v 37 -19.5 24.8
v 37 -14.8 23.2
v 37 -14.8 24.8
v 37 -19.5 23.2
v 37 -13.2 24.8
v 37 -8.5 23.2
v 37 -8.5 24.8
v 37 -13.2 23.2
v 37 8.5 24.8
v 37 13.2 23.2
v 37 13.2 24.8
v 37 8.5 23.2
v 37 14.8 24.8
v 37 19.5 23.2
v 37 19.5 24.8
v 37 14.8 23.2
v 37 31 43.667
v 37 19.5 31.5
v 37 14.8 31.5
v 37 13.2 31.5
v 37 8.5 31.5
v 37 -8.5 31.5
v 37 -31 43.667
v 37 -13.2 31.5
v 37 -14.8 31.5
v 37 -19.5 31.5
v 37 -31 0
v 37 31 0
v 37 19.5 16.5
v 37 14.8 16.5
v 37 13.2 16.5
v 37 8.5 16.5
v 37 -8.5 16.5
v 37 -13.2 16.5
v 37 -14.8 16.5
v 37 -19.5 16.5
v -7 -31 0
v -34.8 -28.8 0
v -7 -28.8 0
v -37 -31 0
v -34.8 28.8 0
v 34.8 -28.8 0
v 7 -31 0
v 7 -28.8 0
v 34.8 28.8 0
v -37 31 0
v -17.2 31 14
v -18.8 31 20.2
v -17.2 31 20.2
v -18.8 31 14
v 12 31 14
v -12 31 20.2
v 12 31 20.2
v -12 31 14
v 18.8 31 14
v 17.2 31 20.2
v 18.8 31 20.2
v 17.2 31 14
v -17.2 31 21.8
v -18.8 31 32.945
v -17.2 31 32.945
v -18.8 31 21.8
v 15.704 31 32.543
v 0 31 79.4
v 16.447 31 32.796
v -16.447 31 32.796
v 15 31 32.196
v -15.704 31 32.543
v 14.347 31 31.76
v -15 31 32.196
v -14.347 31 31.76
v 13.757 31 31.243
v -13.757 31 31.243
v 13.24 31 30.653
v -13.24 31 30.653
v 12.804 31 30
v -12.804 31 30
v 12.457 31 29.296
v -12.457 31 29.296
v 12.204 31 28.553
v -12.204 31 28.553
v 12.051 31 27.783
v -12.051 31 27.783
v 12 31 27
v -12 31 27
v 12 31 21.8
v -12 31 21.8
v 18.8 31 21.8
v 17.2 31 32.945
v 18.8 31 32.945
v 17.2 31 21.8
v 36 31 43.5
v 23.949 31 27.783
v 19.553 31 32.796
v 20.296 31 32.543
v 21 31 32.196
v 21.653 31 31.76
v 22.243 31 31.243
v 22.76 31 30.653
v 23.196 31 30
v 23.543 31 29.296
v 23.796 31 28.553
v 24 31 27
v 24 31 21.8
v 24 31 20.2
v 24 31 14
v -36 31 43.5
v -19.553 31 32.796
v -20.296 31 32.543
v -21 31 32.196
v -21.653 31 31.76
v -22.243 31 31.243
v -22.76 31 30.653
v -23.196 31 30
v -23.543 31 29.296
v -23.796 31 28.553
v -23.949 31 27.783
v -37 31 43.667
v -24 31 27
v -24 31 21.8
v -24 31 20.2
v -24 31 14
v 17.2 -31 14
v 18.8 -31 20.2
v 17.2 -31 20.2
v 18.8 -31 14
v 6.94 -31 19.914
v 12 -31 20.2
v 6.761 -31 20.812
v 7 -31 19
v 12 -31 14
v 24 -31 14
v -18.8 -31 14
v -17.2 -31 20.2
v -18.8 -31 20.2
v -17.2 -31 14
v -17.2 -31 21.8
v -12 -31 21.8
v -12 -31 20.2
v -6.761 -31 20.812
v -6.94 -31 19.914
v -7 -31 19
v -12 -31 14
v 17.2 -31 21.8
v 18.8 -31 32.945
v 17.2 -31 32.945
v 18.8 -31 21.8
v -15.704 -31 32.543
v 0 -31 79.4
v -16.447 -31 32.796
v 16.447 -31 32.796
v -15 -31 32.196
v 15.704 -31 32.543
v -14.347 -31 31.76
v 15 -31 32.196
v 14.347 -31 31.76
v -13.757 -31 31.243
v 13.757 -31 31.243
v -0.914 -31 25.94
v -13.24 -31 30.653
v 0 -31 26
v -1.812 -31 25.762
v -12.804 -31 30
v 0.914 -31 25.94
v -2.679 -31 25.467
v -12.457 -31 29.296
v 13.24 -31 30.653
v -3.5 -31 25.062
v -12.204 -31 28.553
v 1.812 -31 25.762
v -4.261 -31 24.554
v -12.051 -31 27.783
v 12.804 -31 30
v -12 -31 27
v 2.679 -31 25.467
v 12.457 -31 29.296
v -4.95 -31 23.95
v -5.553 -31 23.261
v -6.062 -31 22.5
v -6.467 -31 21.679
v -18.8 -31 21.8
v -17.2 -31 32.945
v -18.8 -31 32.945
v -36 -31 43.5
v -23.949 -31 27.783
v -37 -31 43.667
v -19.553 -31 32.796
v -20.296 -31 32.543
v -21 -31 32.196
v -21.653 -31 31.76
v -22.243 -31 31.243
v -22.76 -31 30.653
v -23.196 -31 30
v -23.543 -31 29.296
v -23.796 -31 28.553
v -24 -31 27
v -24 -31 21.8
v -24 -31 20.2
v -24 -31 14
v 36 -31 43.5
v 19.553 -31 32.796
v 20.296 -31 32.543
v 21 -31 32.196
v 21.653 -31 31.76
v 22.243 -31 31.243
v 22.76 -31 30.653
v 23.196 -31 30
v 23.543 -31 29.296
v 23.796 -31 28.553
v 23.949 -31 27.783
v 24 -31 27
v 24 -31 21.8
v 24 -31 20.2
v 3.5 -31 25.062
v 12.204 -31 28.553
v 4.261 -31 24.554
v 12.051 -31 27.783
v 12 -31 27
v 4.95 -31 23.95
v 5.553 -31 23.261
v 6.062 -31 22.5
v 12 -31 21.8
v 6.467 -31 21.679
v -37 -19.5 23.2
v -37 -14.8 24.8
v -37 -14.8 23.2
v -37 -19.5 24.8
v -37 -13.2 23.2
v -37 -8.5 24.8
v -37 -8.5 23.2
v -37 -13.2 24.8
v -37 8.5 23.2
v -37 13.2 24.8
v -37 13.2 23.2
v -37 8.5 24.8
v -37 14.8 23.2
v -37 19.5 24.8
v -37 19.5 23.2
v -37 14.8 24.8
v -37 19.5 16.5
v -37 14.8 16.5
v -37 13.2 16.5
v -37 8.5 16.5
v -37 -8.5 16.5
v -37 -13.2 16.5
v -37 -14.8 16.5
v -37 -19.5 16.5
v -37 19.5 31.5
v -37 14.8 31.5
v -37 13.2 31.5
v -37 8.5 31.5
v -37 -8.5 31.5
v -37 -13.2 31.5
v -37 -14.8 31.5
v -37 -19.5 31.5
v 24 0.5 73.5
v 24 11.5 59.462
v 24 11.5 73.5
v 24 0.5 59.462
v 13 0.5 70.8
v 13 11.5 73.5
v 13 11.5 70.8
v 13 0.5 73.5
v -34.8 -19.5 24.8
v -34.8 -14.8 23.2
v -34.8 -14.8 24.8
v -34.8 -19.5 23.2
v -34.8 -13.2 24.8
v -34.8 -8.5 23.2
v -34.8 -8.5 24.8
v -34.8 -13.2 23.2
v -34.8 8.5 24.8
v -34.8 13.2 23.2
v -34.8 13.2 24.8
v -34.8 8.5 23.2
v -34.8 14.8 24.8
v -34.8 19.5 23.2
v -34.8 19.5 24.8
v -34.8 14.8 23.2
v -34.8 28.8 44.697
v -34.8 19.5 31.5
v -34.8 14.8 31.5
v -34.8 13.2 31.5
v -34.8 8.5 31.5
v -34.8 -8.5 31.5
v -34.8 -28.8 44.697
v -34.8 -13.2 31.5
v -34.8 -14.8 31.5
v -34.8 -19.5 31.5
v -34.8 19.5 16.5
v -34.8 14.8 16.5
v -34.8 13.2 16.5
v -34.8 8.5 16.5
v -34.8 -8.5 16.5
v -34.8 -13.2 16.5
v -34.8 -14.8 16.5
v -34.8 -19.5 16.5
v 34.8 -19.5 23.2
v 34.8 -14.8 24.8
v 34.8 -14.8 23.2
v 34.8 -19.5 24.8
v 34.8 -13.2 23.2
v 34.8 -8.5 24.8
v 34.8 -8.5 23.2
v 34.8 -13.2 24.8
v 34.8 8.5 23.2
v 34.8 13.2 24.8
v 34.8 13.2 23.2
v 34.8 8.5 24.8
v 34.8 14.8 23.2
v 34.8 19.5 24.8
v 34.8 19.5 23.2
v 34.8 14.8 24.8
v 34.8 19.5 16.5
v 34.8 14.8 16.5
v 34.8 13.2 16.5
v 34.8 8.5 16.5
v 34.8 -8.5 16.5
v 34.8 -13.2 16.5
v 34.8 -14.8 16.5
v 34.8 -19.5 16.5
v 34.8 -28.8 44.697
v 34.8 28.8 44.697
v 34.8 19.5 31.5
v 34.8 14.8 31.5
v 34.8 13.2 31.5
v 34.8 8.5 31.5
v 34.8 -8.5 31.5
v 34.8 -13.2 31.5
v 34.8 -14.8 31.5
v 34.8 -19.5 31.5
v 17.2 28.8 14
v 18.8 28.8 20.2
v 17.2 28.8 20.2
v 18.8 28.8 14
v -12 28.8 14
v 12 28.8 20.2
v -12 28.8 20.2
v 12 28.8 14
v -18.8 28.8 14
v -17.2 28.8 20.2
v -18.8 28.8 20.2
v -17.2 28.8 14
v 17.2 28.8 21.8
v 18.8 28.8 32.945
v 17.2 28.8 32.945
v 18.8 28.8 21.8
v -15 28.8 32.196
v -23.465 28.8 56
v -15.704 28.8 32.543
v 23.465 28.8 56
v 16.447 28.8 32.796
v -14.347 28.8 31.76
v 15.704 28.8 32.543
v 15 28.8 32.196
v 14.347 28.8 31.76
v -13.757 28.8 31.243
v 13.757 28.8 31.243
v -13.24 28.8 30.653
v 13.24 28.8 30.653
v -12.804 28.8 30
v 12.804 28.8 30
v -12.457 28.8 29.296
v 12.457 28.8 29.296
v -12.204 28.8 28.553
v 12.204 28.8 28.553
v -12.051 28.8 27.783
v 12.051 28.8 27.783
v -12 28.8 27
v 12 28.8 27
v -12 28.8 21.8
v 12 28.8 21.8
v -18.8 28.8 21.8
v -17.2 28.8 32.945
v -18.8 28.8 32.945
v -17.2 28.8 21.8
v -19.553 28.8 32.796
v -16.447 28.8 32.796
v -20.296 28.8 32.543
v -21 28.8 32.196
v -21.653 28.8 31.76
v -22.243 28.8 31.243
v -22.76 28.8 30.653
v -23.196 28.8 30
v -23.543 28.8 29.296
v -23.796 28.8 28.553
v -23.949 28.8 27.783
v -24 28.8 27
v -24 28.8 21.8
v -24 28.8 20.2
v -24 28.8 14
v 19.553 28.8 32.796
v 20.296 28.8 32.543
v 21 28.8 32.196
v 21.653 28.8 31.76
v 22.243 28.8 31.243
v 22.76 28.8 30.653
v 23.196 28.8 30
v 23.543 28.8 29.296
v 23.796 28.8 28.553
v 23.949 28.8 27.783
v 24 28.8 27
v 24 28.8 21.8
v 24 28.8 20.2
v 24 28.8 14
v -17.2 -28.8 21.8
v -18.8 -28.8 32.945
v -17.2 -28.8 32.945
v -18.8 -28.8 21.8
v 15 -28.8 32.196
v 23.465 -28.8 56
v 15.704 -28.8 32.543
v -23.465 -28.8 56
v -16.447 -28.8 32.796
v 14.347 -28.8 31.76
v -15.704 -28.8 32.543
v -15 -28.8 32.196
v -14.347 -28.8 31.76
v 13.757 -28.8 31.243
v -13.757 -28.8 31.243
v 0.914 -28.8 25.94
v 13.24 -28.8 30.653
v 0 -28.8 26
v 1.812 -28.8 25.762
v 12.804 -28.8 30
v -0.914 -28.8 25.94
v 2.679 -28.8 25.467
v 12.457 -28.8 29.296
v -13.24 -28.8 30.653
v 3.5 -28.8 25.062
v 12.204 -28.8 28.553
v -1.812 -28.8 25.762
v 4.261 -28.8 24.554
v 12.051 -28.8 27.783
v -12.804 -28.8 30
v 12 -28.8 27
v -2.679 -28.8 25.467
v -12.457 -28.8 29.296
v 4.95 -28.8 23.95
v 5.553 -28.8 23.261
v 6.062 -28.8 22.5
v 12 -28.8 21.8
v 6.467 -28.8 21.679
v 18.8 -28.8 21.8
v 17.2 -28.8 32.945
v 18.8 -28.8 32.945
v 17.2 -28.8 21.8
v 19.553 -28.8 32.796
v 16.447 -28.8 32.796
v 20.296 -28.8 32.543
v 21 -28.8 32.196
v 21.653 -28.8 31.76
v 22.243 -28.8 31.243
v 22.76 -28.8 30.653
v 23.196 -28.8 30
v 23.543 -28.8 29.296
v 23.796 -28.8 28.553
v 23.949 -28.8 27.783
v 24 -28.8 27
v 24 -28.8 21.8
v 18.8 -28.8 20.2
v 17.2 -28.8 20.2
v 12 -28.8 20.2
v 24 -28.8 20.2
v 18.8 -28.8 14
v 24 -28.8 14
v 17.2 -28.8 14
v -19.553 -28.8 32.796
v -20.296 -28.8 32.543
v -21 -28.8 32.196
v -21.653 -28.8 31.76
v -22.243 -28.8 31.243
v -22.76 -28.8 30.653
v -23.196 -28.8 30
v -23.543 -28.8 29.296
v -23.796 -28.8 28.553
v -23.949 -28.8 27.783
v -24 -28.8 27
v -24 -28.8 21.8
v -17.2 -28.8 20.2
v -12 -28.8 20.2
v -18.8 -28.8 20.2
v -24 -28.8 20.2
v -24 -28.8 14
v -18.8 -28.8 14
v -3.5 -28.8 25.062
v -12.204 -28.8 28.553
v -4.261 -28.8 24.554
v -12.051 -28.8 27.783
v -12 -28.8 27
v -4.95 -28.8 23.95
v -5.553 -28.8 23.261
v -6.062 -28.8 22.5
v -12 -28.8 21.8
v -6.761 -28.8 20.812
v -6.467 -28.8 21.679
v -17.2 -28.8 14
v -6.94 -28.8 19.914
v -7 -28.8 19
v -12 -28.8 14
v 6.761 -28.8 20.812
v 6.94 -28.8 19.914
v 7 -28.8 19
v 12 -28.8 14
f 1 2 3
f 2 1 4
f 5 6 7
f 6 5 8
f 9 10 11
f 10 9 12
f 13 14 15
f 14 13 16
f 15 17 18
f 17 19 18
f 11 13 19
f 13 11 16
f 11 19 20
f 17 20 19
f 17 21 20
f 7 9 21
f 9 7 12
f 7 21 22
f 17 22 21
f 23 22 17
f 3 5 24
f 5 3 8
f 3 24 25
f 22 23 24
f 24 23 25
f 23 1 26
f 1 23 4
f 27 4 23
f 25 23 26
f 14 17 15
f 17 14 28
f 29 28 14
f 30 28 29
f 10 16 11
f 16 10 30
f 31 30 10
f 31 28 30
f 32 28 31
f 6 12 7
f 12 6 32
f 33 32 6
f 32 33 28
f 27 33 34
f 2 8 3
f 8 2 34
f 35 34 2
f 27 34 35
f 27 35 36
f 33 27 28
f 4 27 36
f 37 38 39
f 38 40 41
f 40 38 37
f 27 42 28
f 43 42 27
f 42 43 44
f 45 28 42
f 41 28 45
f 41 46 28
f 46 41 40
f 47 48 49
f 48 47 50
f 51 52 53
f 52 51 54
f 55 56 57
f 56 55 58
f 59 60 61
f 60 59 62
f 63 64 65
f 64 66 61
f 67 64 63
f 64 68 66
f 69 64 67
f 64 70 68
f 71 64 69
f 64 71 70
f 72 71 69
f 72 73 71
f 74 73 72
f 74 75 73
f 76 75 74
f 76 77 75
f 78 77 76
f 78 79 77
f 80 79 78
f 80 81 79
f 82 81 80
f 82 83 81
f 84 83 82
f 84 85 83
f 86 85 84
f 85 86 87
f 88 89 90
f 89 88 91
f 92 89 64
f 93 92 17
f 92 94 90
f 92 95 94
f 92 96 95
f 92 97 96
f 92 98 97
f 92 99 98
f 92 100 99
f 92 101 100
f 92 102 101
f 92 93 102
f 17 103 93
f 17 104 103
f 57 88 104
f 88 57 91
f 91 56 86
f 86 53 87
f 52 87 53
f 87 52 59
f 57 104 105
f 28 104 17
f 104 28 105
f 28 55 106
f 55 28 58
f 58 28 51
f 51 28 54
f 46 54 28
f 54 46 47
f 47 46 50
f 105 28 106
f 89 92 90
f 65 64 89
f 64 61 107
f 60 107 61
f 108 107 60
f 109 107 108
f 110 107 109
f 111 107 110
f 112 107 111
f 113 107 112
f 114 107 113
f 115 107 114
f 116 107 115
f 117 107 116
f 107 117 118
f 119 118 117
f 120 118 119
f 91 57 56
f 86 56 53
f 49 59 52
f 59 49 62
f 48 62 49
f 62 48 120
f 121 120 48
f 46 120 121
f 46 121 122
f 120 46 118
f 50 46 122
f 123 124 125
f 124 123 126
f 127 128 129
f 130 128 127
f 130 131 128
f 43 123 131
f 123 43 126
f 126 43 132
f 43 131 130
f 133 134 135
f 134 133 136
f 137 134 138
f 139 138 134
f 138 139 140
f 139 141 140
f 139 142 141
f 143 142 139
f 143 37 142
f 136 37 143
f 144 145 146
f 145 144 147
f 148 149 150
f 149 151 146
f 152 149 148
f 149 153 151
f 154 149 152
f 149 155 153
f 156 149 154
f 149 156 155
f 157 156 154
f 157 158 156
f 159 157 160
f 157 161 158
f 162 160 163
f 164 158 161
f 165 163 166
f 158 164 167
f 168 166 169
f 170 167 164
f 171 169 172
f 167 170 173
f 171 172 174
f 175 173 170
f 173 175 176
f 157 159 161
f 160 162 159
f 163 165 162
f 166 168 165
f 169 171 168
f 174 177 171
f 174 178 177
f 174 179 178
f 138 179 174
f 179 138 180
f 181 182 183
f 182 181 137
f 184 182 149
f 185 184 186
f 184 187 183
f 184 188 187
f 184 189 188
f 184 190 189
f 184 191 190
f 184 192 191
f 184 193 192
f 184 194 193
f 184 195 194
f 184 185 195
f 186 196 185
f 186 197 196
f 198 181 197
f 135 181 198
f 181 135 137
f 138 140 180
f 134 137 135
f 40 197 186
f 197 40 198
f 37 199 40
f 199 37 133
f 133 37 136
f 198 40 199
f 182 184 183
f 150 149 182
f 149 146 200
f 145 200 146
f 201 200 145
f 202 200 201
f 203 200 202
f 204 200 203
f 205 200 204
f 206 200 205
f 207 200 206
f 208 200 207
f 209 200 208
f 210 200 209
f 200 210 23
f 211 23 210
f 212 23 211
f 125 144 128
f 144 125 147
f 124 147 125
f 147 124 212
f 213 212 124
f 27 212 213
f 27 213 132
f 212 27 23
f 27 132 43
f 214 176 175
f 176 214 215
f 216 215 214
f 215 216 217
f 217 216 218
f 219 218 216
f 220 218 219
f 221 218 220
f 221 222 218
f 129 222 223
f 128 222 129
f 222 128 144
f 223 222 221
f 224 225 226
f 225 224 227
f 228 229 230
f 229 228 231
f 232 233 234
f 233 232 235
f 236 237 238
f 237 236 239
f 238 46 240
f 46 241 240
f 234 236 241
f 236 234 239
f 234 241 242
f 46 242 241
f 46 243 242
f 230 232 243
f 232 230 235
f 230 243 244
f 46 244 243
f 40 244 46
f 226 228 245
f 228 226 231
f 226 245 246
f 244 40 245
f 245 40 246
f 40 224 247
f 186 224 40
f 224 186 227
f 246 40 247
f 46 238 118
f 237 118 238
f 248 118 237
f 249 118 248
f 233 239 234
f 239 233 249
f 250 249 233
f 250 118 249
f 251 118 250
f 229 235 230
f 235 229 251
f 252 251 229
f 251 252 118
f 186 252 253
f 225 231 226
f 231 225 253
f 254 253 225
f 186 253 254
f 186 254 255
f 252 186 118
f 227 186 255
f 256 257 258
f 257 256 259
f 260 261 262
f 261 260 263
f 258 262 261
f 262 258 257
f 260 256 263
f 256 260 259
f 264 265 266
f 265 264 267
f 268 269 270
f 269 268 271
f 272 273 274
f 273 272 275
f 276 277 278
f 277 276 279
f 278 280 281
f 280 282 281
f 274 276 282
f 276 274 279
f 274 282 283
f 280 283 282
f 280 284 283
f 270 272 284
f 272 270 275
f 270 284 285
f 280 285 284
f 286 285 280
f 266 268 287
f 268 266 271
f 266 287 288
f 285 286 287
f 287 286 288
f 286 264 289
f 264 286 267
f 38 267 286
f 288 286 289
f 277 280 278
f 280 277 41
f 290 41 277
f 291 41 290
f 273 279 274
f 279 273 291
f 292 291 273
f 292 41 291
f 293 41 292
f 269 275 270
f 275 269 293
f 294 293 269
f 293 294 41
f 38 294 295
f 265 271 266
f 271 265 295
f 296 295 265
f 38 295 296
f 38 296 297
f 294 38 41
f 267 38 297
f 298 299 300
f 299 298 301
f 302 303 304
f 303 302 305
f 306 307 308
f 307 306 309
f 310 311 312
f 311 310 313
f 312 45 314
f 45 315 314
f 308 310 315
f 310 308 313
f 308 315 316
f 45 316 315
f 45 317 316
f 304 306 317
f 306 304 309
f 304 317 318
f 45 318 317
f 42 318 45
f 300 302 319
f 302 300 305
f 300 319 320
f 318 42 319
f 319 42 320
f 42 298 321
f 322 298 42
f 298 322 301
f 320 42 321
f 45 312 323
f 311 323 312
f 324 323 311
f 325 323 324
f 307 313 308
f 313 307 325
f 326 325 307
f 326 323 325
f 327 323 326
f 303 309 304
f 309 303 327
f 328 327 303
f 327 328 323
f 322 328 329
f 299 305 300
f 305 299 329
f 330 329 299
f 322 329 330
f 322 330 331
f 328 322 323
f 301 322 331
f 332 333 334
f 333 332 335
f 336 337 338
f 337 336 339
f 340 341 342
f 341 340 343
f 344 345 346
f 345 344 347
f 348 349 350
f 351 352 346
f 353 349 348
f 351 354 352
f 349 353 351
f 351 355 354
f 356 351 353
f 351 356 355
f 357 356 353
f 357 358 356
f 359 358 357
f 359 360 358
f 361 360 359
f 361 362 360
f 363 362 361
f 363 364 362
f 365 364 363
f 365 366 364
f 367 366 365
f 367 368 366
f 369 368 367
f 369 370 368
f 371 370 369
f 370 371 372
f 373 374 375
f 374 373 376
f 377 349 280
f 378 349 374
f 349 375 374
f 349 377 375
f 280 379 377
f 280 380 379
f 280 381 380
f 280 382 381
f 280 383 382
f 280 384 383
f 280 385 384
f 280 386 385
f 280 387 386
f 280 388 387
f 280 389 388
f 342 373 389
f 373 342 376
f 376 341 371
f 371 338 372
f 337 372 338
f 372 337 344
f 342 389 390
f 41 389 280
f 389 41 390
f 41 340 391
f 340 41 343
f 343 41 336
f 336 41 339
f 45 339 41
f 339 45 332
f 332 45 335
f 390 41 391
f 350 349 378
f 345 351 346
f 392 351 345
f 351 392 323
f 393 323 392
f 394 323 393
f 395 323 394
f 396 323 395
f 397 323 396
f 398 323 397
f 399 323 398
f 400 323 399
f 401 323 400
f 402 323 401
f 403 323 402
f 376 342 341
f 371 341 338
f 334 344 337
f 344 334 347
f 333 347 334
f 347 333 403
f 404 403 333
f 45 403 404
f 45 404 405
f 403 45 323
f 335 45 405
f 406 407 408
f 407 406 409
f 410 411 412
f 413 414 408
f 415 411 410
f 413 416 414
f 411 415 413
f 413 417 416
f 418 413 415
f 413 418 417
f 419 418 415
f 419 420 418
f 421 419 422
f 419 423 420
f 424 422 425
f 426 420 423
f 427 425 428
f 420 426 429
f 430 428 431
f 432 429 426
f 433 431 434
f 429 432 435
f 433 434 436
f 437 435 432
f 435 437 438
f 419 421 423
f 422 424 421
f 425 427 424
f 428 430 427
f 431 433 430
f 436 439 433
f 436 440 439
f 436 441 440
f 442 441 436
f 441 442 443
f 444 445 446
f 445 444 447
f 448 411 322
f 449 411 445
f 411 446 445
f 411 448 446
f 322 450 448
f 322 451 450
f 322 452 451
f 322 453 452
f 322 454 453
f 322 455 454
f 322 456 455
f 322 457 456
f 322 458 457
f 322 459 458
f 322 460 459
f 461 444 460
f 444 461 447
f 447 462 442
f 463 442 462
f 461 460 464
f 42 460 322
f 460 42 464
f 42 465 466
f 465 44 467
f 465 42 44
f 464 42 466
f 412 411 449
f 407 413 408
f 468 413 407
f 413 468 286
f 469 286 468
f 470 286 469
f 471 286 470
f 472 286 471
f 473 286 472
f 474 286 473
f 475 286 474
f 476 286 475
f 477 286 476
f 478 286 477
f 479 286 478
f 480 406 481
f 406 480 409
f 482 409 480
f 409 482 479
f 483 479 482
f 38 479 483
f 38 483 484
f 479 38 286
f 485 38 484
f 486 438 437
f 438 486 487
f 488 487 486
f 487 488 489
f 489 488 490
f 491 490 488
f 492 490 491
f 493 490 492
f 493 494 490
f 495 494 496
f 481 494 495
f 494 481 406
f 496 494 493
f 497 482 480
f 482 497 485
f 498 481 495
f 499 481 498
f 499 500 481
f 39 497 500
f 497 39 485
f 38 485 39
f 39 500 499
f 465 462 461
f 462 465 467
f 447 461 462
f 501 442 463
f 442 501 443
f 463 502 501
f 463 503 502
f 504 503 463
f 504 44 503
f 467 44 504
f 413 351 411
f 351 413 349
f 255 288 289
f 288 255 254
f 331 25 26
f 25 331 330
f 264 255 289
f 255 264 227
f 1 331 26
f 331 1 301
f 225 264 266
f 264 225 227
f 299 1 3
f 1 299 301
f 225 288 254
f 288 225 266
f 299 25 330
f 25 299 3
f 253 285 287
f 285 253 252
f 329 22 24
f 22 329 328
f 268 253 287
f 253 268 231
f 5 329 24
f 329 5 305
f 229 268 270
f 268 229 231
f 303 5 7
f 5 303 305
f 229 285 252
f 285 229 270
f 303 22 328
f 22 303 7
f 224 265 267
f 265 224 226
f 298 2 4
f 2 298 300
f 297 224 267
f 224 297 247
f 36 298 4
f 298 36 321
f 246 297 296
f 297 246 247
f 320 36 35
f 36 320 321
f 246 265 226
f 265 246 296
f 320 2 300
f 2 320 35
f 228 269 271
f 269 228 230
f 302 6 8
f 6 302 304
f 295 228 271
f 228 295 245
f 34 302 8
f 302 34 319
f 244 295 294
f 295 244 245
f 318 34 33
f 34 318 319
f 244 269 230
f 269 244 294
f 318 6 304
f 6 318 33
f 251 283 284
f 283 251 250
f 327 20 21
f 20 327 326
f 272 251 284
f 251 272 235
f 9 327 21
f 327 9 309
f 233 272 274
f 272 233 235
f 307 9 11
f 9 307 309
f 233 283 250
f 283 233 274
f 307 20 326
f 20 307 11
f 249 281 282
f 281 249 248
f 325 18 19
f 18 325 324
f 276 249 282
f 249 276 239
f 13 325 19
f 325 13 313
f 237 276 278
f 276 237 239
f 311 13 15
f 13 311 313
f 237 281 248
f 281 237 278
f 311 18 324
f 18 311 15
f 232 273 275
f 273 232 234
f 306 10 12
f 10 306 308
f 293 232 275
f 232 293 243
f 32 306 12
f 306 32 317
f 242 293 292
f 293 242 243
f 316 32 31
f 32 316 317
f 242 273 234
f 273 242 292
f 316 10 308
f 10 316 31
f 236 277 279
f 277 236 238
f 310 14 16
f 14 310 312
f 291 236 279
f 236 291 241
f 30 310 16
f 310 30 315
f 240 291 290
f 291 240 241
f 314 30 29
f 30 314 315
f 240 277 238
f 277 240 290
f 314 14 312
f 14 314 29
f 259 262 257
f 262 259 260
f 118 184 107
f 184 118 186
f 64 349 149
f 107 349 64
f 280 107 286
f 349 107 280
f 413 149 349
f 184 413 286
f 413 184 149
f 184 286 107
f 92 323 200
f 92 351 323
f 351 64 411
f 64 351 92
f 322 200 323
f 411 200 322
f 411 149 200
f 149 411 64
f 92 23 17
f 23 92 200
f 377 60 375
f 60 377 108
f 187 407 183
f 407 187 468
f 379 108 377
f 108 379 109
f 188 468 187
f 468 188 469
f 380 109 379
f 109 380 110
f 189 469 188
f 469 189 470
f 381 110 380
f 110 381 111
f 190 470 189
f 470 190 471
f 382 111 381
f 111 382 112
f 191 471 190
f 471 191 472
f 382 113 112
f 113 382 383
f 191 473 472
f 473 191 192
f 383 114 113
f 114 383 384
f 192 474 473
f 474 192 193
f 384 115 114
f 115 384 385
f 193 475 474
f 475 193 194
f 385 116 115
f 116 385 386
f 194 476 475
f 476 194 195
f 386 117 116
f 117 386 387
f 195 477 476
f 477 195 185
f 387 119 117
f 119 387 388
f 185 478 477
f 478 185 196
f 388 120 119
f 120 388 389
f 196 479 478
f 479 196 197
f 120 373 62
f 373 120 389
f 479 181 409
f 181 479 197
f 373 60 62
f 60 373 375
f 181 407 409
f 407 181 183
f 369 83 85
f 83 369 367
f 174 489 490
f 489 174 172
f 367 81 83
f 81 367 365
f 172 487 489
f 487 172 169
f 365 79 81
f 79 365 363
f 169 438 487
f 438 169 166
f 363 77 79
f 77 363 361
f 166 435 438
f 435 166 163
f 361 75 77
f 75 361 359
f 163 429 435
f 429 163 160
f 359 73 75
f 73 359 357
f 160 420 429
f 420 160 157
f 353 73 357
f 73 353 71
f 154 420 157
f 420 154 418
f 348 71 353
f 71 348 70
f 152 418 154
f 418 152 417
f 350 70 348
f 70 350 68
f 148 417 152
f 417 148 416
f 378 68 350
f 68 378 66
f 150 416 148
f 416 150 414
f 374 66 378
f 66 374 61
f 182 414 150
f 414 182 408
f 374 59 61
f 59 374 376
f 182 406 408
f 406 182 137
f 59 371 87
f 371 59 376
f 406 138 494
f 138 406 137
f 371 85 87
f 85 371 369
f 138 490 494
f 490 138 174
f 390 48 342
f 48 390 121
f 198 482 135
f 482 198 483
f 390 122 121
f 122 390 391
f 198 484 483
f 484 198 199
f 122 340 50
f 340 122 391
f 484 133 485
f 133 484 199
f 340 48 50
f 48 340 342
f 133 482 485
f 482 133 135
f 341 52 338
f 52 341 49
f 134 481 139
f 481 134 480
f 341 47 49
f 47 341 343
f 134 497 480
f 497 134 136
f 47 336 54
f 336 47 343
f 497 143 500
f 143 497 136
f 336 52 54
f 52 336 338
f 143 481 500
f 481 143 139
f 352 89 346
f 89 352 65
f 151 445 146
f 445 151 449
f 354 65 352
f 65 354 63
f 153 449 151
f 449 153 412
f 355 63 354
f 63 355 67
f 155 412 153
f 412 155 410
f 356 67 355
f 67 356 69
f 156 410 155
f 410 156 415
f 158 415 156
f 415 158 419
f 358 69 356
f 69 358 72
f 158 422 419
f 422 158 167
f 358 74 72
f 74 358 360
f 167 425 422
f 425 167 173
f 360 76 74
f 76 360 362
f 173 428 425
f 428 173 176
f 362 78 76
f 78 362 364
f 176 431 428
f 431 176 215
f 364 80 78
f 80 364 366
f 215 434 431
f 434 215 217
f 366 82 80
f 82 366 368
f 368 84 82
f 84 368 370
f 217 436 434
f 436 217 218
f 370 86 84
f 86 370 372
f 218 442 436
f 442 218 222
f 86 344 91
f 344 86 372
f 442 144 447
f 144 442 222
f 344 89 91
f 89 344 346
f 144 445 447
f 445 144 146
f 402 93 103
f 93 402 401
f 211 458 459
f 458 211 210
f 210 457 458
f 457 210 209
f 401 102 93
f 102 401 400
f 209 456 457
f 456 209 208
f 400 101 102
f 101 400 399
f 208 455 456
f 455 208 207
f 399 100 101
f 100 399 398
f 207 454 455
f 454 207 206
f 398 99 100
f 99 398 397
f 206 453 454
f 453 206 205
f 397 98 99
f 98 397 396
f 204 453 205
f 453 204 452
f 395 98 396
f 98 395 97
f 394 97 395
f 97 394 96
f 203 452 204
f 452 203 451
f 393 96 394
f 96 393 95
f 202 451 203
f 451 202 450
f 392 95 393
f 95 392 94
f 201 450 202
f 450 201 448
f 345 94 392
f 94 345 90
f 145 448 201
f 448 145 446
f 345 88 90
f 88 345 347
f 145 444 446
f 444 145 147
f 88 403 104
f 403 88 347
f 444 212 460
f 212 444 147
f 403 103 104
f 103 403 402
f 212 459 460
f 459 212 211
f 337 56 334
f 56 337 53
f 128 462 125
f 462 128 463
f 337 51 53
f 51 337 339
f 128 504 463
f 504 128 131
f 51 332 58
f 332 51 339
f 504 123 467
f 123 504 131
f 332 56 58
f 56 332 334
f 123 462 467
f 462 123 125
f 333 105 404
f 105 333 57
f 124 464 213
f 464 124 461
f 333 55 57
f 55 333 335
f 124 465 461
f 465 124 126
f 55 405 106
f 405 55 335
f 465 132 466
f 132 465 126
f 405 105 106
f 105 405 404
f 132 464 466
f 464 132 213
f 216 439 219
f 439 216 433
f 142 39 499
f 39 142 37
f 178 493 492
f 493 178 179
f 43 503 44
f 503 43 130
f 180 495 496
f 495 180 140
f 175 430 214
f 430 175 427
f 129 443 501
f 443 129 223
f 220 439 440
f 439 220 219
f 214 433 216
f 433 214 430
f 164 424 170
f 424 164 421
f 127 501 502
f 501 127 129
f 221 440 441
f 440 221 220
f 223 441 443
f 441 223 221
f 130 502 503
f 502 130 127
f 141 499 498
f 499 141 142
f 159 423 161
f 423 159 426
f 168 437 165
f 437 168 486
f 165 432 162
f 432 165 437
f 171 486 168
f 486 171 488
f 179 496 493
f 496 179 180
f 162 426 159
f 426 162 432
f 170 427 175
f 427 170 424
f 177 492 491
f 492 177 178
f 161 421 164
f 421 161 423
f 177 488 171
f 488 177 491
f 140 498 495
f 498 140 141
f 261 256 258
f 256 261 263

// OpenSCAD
// file: comun.scad
// Impronta 3D — Casita farol nevada (diseño propio, 2 colores). Casita hueca con ventanas y puerta caladas:
// con una vela LED adentro, la luz sale por las ventanas. Techo y chimenea nevados en blanco.
// Se imprime parada, sin soportes (techo a 45°, abierta abajo para meter la vela).
w = 74; d = 62; hp = 46; pared = 2.2; $fn = 48;
ht = w / 2;   // alto del techo a 45°
module volumen(o = 0) translate([0, 0, 0]) rotate([90, 0, 0]) translate([0, 0, -d / 2 + o]) linear_extrude(d - 2 * o)
    polygon([[-w / 2 + o, 0], [w / 2 - o, 0], [w / 2 - o, hp], [0, hp + ht - o * 1.41], [-w / 2 + o, hp]]);
module ventana(x, z) translate([x, 0, z]) rotate([90, 0, 0]) linear_extrude(d + 10, center = true) difference() {
    hull() { translate([-6, -8]) square([12, 12]); translate([0, 5]) circle(r = 6); }
    square([1.6, 30], center = true); translate([0, -1]) square([14, 1.6], center = true);
}
module nieve() intersection() {
    translate([0, 0, 0]) rotate([90, 0, 0]) translate([0, 0, -d / 2 - 2]) linear_extrude(d + 4)
        polygon([[-w / 2 - 2, hp - 2], [0, hp + ht + 1.2], [w / 2 + 2, hp - 2], [w / 2 - 1, hp - 2.5], [0, hp + ht - 3.6], [-w / 2 + 1, hp - 2.5]]);
    cube([w + 10, d + 4, 300], center = true);
}
module chimenea() translate([w / 4, 6, hp + ht / 2 - 4]) { cube([11, 11, 24], center = true); }
// main file
include <comun.scad>
difference() {
    union() { volumen(); translate([w / 4 - 5.5, 0.5, hp + 2]) cube([11, 11, 26]); }
    difference() { translate([0, 0, -0.01]) volumen(pared); translate([0, 0, hp + ht - 12]) cube([w, d, 30], center = true); }
    ventana(-18, 22); ventana(18, 22);
    // puerta al frente y ventanas a los costados
    translate([0, -d / 2, 0]) rotate([90, 0, 0]) linear_extrude(12, center = true) hull() { translate([-7, -1]) square([14, 20]); translate([0, 19]) circle(r = 7); }
    for (y = [-14, 14]) translate([0, y, 24]) rotate([90, 0, 90]) linear_extrude(w + 10, center = true) difference() { square([11, 15], center = true); square([1.6, 20], center = true); square([14, 1.6], center = true); }
    nieve();
    translate([w / 4 - 5.5 - 1, -0.5, hp + ht / 2 + 9]) cube([13, 13, 10]);
}
